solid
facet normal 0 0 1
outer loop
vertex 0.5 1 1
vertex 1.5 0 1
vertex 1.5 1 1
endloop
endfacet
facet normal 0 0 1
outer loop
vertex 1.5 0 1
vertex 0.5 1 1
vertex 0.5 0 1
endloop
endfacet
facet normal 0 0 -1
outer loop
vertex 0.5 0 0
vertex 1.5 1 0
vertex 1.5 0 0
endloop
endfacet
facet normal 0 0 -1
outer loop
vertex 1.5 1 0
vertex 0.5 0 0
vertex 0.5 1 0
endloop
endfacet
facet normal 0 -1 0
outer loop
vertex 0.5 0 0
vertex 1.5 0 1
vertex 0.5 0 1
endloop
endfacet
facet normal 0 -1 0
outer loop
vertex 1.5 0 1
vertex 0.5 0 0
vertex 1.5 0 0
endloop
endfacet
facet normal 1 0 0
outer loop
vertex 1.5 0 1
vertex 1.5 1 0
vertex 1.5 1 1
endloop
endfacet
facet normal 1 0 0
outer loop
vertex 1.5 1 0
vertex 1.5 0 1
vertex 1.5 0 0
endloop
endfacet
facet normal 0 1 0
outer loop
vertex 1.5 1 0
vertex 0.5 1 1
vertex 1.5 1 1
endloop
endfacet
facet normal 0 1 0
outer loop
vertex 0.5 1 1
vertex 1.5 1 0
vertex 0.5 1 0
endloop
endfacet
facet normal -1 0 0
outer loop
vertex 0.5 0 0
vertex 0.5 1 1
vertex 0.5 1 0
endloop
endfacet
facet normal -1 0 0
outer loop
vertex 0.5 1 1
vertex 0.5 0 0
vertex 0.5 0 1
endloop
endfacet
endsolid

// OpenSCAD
// cube(1);

translate([0.5, 0, 0]) {
    cube(1);
}

// translate([1, 0, 0]) {
//     cube(1);
// }

// translate([1.5, 0, 0]) {
//     cube(1);
// }
